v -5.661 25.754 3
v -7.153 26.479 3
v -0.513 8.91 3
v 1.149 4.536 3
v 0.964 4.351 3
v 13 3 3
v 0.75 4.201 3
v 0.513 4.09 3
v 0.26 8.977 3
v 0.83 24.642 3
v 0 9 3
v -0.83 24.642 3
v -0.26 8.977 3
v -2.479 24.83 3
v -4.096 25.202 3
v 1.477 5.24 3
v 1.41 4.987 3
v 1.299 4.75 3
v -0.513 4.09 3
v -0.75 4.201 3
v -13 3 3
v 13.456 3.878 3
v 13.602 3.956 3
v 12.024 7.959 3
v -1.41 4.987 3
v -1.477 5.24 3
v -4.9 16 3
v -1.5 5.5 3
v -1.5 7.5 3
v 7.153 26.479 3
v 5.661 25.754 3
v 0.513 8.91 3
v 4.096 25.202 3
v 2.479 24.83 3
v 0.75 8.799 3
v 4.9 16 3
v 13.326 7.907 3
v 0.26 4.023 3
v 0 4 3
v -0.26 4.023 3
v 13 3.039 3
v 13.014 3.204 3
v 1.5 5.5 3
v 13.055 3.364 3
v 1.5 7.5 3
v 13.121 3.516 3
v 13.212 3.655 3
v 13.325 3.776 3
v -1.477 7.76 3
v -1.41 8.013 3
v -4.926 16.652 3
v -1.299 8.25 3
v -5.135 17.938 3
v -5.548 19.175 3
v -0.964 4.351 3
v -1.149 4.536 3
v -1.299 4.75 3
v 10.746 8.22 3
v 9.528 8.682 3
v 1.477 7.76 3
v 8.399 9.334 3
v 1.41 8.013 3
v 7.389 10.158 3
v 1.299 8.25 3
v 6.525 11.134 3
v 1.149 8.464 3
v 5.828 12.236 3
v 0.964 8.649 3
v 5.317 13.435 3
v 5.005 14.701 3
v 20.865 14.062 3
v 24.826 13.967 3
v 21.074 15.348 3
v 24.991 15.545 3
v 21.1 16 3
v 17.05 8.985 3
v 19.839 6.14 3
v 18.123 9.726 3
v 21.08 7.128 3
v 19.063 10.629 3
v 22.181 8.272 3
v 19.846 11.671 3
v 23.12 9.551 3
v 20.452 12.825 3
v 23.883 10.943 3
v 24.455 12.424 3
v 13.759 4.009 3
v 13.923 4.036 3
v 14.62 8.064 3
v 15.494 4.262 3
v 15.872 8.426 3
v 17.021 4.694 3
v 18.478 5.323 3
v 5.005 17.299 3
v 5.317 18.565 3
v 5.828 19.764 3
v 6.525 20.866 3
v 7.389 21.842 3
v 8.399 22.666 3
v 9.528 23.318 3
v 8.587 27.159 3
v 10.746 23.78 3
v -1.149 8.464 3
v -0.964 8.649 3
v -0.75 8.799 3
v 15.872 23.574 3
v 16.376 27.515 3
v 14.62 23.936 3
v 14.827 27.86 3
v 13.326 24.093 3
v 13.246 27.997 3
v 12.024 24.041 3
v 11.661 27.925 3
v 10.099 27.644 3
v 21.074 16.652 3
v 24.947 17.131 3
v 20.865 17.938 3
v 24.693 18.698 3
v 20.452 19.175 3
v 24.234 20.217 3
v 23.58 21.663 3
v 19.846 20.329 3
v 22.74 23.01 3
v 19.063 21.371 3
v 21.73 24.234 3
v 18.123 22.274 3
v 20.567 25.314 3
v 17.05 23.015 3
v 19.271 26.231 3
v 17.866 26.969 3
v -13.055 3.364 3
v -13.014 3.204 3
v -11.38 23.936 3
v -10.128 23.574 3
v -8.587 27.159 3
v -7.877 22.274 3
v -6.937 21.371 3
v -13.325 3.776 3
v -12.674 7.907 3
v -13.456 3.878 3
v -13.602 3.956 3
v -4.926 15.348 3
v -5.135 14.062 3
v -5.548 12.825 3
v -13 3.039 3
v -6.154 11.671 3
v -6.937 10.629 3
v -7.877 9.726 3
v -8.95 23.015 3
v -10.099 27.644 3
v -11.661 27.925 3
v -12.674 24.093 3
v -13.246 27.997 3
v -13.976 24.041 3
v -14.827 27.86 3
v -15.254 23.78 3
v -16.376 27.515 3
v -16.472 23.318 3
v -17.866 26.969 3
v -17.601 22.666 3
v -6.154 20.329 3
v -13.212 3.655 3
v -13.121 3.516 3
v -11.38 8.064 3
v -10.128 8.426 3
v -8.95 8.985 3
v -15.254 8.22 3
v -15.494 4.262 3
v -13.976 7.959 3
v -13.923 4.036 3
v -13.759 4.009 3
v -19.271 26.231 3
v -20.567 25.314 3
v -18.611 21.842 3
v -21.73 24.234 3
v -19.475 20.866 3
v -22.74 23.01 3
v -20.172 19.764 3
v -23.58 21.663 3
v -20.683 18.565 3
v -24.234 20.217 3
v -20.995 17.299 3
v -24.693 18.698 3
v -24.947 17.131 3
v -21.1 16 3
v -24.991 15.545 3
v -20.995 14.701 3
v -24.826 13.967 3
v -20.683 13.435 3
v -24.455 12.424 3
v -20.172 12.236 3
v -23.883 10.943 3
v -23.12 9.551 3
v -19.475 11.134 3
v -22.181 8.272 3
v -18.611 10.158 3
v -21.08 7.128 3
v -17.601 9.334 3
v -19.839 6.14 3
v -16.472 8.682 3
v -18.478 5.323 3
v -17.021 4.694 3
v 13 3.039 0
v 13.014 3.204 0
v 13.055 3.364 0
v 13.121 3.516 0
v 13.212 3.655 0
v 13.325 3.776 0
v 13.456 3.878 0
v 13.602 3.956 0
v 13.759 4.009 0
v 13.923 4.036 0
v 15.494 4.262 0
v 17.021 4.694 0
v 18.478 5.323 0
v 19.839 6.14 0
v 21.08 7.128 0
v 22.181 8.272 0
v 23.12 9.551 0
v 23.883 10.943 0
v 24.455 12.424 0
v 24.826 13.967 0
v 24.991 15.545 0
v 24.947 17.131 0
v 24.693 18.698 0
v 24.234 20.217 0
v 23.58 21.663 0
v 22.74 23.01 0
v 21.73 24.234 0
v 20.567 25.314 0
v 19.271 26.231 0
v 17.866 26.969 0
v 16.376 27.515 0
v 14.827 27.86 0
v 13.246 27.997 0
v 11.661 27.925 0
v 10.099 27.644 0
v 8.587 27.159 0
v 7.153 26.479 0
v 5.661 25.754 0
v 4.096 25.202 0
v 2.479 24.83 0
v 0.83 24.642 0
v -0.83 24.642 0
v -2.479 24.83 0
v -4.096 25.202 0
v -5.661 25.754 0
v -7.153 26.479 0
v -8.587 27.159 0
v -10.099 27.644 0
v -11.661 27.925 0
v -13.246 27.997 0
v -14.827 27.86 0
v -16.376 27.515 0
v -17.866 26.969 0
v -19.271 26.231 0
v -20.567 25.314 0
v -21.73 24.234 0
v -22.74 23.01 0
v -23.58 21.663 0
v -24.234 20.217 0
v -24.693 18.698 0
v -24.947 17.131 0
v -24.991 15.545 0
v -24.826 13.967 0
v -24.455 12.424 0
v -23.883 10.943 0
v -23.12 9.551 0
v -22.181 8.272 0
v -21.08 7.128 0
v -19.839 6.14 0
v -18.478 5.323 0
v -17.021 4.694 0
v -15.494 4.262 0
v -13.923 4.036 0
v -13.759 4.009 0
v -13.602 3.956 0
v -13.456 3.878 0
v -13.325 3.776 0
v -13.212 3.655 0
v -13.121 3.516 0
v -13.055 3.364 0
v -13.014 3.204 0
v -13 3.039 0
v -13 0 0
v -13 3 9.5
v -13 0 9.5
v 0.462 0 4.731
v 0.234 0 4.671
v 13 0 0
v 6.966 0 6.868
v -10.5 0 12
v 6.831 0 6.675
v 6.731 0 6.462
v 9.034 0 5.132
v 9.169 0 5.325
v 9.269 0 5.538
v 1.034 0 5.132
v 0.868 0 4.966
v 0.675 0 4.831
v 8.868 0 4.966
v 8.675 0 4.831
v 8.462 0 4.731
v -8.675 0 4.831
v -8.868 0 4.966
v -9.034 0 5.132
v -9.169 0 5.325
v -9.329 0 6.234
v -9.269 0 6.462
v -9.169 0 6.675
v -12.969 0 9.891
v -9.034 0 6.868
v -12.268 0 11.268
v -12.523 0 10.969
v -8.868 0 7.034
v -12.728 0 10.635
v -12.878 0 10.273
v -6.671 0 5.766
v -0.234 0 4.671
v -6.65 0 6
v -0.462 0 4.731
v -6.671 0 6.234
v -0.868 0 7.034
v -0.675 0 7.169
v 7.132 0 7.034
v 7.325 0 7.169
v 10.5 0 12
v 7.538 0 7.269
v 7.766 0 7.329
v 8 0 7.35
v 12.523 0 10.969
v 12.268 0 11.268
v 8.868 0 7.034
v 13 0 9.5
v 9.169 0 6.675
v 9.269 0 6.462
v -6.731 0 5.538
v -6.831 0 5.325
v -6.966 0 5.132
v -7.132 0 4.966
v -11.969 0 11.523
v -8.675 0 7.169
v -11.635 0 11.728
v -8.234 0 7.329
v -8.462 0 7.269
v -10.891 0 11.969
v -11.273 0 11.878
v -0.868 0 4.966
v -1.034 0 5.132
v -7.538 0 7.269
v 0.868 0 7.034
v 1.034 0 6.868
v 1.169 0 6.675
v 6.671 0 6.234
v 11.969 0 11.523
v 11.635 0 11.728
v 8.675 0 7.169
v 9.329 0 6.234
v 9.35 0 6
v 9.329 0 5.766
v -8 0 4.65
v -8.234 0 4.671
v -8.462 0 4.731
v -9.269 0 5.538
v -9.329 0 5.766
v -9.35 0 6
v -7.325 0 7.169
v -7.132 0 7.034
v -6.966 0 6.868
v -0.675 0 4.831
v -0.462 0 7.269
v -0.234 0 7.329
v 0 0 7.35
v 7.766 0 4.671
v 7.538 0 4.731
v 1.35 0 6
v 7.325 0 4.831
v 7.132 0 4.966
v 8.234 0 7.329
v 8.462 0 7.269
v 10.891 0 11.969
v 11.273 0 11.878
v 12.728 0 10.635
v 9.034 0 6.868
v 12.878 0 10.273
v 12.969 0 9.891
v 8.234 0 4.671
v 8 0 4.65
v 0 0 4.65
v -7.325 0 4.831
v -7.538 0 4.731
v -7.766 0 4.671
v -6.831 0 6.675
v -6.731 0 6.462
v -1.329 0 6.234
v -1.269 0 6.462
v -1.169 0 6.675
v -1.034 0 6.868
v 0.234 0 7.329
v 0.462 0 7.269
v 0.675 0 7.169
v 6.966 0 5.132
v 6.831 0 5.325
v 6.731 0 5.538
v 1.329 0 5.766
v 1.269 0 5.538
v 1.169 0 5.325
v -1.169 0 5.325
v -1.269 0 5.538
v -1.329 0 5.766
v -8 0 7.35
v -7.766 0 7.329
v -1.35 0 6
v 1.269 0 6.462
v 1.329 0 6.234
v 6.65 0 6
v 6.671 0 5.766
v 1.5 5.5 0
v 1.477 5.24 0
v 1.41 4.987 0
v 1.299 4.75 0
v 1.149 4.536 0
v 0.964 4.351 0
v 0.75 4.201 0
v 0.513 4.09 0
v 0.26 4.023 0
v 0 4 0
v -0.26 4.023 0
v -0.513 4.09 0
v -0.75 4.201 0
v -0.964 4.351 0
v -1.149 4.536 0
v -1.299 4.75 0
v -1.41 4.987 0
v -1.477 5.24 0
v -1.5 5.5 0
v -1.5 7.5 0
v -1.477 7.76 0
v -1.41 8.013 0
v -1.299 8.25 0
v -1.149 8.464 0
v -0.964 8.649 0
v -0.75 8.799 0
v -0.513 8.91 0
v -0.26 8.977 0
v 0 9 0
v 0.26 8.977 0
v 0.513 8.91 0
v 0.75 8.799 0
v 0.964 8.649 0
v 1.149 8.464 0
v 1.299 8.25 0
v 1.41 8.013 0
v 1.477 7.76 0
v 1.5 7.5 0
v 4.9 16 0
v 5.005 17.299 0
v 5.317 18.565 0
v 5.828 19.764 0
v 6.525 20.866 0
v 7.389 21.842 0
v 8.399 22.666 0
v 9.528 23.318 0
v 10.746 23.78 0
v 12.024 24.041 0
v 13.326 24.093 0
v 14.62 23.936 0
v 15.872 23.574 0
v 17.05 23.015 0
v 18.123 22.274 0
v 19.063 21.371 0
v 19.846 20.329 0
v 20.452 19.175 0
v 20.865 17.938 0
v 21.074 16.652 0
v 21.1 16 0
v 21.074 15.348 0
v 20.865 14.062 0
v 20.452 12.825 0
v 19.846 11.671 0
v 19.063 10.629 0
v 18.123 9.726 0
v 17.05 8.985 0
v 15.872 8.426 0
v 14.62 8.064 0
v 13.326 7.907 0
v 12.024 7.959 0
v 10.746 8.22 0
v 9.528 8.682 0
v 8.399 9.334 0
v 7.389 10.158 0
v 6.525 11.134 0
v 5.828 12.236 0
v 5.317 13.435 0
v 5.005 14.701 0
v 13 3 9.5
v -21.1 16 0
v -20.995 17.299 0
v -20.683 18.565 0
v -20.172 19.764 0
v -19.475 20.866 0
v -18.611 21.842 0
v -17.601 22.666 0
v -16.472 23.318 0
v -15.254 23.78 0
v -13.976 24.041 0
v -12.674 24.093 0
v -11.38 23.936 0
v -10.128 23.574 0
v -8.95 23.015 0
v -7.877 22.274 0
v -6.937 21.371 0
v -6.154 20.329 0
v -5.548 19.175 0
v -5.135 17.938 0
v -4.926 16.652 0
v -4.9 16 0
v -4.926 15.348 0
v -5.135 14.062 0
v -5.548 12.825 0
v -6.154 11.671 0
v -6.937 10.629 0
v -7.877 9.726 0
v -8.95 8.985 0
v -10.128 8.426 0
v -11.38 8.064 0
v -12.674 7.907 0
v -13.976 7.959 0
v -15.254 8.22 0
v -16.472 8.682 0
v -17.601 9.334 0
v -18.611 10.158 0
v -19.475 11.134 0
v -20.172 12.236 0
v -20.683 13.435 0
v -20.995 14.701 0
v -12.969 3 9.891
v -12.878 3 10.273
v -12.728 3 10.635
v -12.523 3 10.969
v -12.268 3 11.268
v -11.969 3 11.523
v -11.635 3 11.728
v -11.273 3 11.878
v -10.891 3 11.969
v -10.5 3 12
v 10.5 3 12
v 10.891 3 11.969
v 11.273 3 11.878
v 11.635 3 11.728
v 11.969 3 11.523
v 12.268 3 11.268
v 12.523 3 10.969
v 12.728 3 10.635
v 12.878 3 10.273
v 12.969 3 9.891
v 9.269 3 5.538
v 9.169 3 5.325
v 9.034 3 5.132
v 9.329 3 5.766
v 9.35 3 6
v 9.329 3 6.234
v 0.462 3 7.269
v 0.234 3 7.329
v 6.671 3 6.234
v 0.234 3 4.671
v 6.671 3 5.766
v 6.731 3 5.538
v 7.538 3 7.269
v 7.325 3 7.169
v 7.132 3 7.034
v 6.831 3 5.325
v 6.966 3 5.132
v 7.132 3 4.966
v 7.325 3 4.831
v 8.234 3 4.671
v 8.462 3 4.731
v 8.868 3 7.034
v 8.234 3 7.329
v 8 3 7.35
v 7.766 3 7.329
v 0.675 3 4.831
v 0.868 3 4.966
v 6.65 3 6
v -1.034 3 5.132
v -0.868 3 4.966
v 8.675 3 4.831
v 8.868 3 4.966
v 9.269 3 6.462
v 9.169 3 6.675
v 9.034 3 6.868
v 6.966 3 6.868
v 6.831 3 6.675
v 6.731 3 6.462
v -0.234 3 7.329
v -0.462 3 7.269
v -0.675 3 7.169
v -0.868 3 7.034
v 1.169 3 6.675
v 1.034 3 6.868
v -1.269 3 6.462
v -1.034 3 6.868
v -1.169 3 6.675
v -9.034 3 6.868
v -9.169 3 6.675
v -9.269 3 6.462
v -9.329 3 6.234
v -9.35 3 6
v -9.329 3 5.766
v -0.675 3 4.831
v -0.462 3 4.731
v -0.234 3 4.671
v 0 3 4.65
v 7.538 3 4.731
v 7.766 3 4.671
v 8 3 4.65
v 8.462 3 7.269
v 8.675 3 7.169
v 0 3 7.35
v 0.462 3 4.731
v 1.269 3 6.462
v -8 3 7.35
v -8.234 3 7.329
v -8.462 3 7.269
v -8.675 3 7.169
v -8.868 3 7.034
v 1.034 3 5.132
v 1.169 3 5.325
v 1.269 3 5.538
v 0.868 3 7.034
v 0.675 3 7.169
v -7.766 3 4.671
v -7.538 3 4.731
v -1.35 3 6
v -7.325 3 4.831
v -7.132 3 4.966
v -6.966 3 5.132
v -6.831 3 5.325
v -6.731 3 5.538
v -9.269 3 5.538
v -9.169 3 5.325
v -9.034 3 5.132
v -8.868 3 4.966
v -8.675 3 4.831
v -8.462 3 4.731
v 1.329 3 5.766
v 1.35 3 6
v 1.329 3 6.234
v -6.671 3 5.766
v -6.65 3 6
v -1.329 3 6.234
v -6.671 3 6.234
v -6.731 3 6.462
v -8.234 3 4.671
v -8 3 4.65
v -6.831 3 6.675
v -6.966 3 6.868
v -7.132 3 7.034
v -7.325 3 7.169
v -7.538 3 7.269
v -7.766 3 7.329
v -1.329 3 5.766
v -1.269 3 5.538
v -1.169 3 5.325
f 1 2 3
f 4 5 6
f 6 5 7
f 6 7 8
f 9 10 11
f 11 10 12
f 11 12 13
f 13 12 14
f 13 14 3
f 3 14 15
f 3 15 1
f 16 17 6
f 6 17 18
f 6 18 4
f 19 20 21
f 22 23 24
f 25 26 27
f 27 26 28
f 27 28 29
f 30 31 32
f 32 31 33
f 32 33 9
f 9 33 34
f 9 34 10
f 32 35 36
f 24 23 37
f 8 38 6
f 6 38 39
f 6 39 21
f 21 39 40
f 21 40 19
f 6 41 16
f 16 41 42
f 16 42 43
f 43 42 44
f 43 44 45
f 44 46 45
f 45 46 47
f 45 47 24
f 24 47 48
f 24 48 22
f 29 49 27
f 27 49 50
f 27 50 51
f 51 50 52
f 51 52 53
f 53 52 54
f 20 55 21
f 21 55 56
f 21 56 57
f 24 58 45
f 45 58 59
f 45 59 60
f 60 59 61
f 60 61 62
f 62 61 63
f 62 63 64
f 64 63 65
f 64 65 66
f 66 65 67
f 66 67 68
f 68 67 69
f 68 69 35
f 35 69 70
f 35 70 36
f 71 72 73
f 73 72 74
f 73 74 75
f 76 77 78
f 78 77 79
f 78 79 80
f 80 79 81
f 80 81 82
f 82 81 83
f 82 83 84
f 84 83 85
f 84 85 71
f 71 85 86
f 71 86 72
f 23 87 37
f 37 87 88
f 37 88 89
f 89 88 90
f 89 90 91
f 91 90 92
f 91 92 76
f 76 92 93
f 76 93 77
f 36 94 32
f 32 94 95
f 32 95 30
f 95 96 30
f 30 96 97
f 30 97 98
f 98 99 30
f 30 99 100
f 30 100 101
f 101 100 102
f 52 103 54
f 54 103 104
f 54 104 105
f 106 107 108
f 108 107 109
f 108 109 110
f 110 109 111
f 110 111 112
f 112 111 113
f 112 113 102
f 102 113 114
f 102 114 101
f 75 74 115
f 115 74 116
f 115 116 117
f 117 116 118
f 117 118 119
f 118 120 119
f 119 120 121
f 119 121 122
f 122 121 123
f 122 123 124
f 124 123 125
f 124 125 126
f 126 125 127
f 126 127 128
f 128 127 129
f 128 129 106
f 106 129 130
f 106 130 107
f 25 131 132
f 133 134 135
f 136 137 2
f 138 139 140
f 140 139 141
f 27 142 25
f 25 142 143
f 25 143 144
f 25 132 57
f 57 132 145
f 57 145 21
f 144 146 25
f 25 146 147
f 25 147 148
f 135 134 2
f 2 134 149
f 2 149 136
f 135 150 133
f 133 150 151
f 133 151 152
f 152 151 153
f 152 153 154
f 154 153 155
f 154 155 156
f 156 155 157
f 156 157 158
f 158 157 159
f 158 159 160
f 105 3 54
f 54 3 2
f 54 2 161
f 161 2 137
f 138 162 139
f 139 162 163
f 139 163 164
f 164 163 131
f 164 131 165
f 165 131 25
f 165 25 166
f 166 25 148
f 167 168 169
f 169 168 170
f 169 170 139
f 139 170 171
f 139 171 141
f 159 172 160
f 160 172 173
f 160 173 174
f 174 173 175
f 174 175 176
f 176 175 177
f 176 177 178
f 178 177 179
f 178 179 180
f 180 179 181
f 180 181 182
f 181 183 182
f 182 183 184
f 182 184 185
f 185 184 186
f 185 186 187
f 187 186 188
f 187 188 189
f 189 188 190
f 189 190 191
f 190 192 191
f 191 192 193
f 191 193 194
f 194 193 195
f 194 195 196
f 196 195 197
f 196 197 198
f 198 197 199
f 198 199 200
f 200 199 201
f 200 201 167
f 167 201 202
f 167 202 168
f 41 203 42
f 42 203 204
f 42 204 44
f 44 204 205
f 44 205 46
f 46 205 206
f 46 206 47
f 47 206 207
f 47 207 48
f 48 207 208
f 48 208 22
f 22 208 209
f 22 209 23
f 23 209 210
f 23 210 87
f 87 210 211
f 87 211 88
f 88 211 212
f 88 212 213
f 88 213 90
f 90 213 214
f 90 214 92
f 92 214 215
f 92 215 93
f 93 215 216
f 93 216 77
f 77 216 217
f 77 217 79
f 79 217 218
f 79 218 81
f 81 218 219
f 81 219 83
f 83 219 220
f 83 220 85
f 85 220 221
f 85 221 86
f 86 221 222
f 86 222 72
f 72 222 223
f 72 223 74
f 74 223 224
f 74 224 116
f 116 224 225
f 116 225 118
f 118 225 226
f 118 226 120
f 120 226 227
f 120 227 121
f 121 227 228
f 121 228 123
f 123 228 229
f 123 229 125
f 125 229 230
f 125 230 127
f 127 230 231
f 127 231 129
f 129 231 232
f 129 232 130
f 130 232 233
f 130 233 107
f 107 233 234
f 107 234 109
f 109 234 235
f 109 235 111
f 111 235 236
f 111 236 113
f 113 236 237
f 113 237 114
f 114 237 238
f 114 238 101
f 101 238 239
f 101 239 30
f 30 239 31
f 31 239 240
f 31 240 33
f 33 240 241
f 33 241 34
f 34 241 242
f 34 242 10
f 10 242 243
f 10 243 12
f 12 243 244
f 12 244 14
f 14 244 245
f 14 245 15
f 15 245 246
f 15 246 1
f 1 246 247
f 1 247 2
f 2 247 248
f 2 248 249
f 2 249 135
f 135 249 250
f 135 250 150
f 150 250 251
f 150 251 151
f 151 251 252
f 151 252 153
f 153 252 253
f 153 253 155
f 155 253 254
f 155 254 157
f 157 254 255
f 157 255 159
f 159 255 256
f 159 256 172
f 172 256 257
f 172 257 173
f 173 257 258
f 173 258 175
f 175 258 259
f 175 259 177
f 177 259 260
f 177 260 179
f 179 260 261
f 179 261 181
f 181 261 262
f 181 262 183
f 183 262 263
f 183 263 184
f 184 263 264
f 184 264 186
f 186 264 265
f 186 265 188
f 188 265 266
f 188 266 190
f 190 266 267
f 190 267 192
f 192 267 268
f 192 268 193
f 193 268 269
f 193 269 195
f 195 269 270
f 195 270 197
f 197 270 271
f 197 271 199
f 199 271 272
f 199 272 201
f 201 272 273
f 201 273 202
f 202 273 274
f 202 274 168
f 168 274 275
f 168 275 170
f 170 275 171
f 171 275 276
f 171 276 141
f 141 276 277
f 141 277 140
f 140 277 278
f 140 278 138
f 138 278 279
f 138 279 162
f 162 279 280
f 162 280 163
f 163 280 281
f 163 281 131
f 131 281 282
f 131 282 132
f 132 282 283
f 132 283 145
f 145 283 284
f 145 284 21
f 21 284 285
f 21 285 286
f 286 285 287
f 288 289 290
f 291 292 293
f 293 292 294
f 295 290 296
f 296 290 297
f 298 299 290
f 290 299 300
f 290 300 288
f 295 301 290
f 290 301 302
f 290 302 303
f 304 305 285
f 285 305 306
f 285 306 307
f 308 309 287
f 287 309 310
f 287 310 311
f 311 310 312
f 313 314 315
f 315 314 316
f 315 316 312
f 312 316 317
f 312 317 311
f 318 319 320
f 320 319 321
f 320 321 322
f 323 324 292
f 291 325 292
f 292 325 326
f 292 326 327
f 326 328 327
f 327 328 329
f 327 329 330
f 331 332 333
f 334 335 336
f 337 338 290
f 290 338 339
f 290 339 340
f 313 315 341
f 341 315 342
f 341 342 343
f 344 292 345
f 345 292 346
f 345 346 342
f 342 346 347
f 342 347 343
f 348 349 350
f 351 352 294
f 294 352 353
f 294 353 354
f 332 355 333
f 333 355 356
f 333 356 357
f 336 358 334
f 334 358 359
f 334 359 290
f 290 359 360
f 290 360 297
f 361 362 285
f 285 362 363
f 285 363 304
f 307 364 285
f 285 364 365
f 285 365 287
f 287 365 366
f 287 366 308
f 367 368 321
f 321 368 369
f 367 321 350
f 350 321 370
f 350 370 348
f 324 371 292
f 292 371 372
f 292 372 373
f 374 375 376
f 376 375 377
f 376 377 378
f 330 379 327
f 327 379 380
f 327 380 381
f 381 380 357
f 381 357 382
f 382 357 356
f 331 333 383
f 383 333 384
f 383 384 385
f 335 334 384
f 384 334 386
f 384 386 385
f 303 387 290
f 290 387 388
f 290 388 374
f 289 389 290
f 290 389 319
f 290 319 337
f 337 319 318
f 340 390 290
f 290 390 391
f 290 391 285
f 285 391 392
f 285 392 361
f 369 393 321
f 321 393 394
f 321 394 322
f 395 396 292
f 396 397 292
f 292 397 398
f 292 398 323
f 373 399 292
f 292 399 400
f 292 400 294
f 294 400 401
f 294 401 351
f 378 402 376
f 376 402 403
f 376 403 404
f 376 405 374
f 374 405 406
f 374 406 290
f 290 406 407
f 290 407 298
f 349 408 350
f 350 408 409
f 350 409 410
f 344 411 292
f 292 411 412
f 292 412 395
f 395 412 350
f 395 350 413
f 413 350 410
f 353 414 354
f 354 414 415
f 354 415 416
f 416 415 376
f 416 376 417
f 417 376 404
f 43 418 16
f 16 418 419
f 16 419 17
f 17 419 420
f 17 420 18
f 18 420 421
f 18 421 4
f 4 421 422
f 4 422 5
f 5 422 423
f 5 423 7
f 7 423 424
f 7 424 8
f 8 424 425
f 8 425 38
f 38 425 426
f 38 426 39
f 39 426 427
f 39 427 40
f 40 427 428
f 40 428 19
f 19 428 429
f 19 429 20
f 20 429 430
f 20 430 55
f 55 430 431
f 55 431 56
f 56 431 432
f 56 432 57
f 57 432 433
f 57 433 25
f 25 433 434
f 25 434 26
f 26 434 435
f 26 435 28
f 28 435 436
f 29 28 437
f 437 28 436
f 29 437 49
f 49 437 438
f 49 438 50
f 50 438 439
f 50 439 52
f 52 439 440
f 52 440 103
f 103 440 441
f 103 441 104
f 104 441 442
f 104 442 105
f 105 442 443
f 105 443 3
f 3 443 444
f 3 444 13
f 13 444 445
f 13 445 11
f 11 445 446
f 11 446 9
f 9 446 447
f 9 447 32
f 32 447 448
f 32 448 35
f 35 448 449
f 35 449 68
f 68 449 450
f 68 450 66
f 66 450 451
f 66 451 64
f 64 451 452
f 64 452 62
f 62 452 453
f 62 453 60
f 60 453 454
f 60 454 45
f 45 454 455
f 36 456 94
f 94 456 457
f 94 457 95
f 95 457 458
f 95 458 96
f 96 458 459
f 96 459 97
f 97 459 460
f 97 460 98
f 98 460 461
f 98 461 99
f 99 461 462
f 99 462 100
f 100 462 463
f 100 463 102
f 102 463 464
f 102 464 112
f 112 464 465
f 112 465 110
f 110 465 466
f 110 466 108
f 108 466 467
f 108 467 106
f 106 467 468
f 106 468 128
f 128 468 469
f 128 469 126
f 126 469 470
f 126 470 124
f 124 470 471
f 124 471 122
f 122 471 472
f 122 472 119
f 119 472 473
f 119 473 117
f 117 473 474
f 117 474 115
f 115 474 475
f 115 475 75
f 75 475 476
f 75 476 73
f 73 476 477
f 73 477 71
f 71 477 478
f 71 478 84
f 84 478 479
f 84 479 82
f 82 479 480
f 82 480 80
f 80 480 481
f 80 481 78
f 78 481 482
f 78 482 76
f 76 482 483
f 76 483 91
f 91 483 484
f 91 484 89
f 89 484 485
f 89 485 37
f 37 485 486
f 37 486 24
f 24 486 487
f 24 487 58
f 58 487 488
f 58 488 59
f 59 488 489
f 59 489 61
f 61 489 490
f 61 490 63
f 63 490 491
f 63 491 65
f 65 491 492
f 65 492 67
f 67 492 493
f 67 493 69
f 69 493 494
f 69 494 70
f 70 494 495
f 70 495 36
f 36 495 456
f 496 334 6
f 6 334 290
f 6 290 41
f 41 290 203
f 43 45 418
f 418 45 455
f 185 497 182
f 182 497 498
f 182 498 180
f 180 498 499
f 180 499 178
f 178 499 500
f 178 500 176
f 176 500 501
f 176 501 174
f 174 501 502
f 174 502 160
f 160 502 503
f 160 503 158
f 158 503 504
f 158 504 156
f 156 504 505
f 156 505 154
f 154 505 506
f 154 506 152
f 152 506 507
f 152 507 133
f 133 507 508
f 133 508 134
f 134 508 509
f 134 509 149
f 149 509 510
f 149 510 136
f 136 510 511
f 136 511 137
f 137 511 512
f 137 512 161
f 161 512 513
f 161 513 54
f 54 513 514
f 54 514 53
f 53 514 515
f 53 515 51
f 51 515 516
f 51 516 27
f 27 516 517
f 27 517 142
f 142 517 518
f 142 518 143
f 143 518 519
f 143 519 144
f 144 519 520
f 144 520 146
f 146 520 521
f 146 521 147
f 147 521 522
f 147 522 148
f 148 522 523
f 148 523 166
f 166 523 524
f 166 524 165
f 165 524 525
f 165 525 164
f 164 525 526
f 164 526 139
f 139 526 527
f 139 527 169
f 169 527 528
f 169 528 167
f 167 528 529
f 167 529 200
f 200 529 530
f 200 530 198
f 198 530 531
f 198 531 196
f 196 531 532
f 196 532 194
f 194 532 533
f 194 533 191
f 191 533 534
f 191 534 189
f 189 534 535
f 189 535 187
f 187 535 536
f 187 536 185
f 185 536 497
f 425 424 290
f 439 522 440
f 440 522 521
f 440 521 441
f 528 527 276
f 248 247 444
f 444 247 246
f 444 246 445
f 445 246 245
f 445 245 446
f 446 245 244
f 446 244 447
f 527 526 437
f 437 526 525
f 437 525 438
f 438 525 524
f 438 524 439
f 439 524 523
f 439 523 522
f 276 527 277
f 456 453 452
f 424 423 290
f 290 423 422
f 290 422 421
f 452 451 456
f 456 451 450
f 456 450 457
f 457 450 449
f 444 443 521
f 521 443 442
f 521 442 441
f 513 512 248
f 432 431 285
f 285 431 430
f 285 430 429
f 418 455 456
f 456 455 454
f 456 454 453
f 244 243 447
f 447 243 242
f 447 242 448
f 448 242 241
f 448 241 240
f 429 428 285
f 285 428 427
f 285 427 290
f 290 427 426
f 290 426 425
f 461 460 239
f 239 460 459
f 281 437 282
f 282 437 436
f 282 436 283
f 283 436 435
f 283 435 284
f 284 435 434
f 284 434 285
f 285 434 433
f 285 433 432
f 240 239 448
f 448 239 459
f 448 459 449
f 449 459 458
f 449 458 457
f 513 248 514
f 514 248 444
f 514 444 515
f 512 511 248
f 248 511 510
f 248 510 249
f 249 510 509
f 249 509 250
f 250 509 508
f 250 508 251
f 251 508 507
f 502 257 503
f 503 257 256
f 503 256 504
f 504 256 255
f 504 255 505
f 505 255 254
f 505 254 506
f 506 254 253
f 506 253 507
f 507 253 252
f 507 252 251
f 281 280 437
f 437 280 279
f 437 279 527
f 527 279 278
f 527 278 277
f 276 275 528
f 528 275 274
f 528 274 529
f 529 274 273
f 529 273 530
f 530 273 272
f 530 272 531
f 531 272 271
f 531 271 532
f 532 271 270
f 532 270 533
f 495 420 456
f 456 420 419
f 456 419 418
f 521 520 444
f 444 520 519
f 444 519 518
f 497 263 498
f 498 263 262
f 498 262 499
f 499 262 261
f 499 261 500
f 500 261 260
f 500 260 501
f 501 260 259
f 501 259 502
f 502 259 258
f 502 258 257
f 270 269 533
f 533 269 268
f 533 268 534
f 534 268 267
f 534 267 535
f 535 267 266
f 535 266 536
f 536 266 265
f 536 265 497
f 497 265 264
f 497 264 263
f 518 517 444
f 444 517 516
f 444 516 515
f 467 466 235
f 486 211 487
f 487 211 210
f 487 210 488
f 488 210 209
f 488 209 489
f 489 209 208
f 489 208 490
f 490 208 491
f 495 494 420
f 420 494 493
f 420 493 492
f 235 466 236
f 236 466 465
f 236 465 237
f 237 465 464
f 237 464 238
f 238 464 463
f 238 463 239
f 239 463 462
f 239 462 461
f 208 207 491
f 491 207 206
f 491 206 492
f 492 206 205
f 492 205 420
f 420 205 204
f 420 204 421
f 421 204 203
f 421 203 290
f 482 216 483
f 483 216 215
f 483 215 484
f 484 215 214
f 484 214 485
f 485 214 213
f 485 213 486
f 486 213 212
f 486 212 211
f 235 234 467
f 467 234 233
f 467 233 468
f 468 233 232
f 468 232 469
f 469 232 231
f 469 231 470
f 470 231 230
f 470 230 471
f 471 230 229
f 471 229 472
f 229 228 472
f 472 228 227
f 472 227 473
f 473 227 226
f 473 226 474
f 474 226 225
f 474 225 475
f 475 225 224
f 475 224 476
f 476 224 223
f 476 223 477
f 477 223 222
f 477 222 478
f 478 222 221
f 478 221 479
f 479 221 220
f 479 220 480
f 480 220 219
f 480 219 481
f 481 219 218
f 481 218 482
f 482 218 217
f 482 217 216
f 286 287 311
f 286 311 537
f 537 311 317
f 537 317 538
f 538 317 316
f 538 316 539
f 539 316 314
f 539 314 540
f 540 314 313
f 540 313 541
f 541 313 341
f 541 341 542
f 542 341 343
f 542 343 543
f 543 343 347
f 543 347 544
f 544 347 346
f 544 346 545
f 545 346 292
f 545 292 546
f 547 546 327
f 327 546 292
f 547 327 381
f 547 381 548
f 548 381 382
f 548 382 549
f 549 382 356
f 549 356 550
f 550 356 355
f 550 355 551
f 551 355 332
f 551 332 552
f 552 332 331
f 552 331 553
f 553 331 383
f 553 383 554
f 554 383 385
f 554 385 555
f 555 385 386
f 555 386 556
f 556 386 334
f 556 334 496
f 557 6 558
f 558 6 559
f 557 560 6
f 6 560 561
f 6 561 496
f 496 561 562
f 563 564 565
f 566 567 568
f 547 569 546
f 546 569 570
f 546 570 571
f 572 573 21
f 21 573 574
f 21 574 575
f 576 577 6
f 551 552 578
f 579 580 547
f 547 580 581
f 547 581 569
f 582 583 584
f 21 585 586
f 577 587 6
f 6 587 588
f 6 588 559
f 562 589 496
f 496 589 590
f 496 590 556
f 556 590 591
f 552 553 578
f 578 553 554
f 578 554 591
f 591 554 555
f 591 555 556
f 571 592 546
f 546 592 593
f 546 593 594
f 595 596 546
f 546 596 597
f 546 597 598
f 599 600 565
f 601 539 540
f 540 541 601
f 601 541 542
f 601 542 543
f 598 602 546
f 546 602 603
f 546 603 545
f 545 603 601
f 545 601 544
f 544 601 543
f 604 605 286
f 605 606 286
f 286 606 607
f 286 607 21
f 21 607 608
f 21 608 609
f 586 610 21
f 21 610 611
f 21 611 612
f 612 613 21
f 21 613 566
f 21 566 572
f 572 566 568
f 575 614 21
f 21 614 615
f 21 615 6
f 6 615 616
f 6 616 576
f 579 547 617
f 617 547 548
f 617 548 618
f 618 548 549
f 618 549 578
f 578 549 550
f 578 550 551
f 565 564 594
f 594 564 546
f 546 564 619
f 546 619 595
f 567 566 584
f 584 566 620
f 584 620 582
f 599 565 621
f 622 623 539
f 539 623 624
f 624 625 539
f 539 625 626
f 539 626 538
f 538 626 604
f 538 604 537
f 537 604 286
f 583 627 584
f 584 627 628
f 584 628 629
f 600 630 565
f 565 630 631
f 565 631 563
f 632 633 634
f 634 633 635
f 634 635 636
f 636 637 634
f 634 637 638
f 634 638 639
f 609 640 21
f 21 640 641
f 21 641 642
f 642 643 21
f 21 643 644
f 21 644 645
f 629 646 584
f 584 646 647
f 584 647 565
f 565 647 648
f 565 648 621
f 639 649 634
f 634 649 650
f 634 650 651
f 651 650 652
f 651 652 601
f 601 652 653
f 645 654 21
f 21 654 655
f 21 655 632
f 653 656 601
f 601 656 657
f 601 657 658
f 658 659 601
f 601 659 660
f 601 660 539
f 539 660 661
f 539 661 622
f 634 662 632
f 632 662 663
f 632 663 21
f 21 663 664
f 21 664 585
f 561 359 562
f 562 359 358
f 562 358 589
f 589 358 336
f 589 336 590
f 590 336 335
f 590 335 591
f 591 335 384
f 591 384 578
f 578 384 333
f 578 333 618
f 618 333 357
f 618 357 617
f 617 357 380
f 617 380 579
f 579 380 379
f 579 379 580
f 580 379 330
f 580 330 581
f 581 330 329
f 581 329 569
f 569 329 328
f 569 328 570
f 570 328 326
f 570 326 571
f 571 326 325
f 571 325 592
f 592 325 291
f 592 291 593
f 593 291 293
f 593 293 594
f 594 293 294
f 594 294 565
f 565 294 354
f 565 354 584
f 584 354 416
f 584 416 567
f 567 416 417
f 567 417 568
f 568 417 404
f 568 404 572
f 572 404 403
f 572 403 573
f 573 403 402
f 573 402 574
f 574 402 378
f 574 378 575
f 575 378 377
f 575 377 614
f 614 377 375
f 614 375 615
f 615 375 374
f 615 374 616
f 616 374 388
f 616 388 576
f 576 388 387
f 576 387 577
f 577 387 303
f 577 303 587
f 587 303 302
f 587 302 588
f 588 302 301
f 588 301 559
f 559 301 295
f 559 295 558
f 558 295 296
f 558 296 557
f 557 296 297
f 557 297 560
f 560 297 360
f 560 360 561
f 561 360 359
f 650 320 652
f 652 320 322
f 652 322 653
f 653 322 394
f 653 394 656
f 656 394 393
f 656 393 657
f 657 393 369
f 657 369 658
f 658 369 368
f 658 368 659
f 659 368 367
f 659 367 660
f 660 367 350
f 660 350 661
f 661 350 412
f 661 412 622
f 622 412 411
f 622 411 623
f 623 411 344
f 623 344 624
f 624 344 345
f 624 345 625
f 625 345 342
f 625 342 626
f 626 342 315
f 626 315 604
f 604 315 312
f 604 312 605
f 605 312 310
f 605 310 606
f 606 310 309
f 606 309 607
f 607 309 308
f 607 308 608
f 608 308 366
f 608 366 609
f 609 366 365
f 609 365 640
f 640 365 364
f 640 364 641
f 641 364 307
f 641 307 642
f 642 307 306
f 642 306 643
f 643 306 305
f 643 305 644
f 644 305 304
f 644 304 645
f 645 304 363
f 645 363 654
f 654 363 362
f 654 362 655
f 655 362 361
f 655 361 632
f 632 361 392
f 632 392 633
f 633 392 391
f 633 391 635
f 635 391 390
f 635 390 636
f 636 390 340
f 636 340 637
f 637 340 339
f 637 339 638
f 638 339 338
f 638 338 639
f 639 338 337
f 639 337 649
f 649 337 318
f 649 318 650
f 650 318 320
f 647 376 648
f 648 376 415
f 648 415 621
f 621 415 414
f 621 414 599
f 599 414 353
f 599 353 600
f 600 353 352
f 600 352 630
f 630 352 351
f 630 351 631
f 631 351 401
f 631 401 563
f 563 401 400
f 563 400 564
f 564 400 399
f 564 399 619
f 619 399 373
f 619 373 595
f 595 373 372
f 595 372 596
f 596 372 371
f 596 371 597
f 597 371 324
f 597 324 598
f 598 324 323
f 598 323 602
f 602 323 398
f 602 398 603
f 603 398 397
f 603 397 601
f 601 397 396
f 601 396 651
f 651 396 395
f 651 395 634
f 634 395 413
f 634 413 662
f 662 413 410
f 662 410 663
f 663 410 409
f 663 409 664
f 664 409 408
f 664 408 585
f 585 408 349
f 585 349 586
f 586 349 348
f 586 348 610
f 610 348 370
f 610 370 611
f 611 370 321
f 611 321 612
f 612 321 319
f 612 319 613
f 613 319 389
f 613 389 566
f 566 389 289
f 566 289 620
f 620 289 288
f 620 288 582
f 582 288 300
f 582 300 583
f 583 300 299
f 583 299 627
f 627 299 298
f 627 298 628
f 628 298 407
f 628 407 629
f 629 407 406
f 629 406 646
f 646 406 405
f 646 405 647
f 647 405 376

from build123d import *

# Parameters (mm, degrees)
SKETCH1_R           = 8.1
BOSS_EXTRUDE1_DEPTH = 3
SKETCH3_R           = 1.35
BOSS_EXTRUDE2_DEPTH = 3


with BuildPart() as part:
    # Sketch1 → Boss-Extrude1 (new body)
    with BuildSketch(Plane.XY):
        with BuildLine():
            Line((-13, 3.038518603), (-13, 0))
            Line((-13, 0), (13, 0))
            Line((13, 0), (13, 3.038518603))
            ThreePointArc((13, 3.038518603), (13.266200614, 3.717884824), (13.923076923, 4.035555634))
            ThreePointArc((13.923076923, 4.035555634), (21.805592628, 7.847605354), (25, 16))
            ThreePointArc((25, 16), (19.076193076, 26.347940747), (7.153353716, 26.479347653))
            ThreePointArc((7.153353716, 26.479347653), (0, 24.618834191), (-7.153353716, 26.479347653))
            ThreePointArc((-7.153353716, 26.479347653), (-19.076193076, 26.347940747), (-25, 16))
            ThreePointArc((-25, 16), (-21.805592628, 7.847605354), (-13.923076923, 4.035555634))
            ThreePointArc((-13.923076923, 4.035555634), (-13.266200614, 3.717884824), (-13, 3.038518603))
        make_face()
        with BuildLine():
            ThreePointArc((-1.5, 7.5), (0, 9), (1.5, 7.5))
            Line((1.5, 7.5), (1.5, 5.5))
            ThreePointArc((1.5, 5.5), (0, 4), (-1.5, 5.5))
            Line((-1.5, 5.5), (-1.5, 7.5))
        make_face(mode=Mode.SUBTRACT)
        with Locations((-13, 16)):
            Circle(SKETCH1_R, mode=Mode.SUBTRACT)
        with Locations((13, 16)):
            Circle(SKETCH1_R, mode=Mode.SUBTRACT)
    extrude(amount=BOSS_EXTRUDE1_DEPTH)

    # Sketch3 → Boss-Extrude2 (add)
    with BuildSketch(Plane.XZ):
        with BuildLine():
            Line((-13, 3), (13, 3))
            Line((13, 3), (13, 9.5))
            ThreePointArc((13, 9.5), (12.267766953, 11.267766953), (10.5, 12))
            Line((10.5, 12), (-10.5, 12))
            ThreePointArc((-10.5, 12), (-12.267766953, 11.267766953), (-13, 9.5))
            Line((-13, 9.5), (-13, 3))
        make_face()
        with Locations((8, 6)):
            Circle(SKETCH3_R, mode=Mode.SUBTRACT)
        with Locations((-8, 6)):
            Circle(SKETCH3_R, mode=Mode.SUBTRACT)
        with Locations((0, 6)):
            Circle(SKETCH3_R, mode=Mode.SUBTRACT)
    extrude(amount=-BOSS_EXTRUDE2_DEPTH)


solid = part.part
